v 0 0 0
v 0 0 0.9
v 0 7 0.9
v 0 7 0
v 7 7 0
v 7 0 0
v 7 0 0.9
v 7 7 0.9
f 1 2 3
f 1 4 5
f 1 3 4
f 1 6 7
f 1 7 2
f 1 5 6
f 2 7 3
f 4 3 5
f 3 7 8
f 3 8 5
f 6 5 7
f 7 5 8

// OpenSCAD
/* Warning, this is a very basic generator with a lot of approximation 
input data : [VQFN, 4YW, 7x7x0.9mm, 48, , B, C04-00601B]
generated by com.zoubworld.electronics.cad.model3d.Basic
Date : Sun Feb 15 10:50:49 CET 2026
*/

//body
color("black")
translate([0,0,0])
cube([7.0,7.0,0.9], center=false);
